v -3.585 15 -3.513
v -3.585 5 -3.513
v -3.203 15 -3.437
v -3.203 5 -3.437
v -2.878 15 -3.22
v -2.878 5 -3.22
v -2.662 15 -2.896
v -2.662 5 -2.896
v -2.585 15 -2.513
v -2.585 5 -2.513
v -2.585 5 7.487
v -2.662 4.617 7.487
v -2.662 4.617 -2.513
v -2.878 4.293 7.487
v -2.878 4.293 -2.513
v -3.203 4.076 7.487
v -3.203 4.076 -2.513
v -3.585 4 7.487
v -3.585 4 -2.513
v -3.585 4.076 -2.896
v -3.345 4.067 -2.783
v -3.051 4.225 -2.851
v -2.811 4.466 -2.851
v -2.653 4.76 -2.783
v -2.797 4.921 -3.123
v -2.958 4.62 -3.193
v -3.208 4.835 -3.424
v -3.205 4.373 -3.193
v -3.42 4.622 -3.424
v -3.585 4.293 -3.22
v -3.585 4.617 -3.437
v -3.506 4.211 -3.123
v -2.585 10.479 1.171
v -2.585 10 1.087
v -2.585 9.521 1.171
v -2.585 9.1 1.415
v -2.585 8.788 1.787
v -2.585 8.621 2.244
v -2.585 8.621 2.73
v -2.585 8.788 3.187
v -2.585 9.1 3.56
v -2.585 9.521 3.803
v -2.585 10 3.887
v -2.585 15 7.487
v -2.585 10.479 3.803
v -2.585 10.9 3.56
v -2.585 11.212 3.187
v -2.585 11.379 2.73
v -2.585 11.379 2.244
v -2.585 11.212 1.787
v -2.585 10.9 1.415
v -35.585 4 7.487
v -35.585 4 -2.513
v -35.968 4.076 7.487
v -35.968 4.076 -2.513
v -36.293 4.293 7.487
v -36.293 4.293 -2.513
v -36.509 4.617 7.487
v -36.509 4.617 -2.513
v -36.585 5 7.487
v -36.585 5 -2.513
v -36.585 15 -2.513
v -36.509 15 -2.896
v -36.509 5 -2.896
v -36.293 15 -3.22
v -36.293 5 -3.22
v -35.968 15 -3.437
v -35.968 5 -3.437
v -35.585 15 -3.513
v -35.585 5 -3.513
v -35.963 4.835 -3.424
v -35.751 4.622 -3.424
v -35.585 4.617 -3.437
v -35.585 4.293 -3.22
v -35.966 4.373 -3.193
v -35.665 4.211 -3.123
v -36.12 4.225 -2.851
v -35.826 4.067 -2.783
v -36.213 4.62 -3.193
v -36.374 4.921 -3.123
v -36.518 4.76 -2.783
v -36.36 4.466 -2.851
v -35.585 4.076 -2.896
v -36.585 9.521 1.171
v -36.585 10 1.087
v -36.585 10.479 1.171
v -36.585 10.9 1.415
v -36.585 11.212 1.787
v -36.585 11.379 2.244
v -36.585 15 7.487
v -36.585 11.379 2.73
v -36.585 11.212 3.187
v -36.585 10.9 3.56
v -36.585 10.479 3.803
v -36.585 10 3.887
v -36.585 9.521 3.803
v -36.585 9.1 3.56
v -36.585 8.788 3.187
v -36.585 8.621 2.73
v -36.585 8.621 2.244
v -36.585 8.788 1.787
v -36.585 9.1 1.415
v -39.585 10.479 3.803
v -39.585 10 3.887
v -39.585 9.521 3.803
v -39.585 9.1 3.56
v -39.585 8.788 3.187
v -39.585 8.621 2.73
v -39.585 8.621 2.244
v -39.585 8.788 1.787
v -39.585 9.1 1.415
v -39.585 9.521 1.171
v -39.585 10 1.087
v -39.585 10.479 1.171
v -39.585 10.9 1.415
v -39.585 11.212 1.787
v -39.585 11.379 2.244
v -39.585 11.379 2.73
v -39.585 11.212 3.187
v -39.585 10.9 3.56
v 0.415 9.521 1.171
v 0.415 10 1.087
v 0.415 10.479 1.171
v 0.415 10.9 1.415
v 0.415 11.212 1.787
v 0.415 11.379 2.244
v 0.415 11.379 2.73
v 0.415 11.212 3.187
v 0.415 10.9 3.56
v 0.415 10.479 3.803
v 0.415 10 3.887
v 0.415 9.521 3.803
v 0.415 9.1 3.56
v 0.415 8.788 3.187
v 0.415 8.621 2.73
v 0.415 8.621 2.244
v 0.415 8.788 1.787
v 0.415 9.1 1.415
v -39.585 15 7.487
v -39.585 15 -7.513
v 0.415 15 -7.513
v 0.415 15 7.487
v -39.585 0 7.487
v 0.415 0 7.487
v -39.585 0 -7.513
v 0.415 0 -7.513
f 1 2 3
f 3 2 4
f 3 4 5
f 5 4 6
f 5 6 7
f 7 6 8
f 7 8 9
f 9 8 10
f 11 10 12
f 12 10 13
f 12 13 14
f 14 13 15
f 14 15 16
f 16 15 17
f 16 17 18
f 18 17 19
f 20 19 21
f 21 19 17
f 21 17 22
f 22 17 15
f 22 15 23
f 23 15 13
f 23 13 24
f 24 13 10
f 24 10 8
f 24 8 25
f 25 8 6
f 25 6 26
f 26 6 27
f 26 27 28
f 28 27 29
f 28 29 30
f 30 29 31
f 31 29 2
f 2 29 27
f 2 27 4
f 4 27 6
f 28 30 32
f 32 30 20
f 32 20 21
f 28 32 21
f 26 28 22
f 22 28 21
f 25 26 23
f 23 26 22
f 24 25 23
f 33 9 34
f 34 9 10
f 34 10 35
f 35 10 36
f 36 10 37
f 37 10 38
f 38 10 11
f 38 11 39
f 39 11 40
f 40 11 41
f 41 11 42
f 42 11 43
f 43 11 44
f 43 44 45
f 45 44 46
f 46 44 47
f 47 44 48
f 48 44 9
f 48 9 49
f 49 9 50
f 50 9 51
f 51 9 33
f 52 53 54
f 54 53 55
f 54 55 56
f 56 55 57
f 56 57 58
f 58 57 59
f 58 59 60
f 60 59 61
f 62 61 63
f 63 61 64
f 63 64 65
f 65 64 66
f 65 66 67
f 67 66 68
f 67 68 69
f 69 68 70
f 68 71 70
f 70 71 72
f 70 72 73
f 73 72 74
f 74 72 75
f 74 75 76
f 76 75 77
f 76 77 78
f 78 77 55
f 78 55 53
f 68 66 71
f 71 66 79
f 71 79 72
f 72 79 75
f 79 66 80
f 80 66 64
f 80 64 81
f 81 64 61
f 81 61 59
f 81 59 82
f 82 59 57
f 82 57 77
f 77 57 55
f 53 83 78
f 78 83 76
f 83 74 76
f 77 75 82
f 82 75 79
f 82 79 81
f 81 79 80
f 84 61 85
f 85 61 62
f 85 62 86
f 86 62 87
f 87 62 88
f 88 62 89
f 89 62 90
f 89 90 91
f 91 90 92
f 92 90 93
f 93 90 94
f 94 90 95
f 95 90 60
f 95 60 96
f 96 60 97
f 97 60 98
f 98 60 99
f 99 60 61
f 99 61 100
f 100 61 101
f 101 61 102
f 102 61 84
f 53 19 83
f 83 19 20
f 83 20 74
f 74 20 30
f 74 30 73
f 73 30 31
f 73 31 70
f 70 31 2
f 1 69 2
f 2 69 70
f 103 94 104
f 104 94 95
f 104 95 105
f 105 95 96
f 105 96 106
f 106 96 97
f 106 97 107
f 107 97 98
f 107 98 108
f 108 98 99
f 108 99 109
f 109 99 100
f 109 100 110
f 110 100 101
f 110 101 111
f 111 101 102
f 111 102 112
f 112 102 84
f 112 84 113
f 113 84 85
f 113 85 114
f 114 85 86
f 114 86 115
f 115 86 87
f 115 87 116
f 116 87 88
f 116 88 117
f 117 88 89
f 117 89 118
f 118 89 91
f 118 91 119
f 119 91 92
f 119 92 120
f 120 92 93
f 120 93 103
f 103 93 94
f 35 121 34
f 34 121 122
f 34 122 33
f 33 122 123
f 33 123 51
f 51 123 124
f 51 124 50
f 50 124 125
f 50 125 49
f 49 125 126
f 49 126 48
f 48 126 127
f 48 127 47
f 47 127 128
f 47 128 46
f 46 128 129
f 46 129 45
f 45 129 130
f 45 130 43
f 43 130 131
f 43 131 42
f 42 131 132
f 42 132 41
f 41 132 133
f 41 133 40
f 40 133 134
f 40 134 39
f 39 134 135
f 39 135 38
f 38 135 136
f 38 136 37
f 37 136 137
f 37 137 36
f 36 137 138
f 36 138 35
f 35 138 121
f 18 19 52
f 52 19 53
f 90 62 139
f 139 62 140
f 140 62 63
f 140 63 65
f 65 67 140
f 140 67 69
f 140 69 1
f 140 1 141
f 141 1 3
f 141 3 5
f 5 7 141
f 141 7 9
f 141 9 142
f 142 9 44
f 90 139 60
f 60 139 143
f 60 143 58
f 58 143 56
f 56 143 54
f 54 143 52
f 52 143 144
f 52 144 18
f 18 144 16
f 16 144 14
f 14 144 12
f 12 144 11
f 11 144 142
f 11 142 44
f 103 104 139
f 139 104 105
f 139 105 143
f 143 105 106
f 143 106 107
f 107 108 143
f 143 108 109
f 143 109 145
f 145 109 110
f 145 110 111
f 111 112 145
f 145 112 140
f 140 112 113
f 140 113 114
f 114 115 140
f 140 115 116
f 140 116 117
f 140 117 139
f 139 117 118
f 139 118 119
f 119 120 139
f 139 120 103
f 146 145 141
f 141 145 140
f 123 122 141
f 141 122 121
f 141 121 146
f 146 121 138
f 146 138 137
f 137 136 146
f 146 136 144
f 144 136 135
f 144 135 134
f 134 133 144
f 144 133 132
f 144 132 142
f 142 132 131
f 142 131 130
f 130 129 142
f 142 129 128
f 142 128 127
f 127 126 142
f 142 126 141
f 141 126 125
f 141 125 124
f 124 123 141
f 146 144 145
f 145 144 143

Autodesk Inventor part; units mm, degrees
ref_plane "YZ Plane" through (0, 0, 0) normal (1, 0, 0) x (0, 1, 0)
ref_plane "XZ Plane" through (0, 0, 0) normal (0, 1, 0) x (-1, 0, 0)
ref_plane "XY Plane" through (0, 0, 0) normal (0, 0, 1) x (1, 0, 0)
sketch "Sketch1" plane through (0, 0, 0) normal (0, 1, 0) x (-1, 0, 0)
  line L0 (39.5855, 7.487) -> (-0.4145, 7.487)
  line L1 (-0.4145, 7.487) -> (-0.4145, -7.513)
  line L2 (-0.4145, -7.513) -> (39.5855, -7.513)
  line L3 (39.5855, -7.513) -> (39.5855, 7.487)
  point P0 (0, 0)
  dimension "d0" = 40
  dimension "d1" = 15
extrude "Extrusion1" add sketch "Sketch1" along normal blind 15
sketch "Sketch2" plane through (0, 15, 0) normal (0, 1, 0) x (1, 0, 0)
  line L0 (-39.5855, -7.487) -> (0.4145, -7.487) projected
  line L1 (-36.5855, -7.487) -> (-2.5855, -7.487)
  line L2 (-2.5855, -7.487) -> (-2.5855, 3.513)
  line L3 (-2.5855, 3.513) -> (-36.5855, 3.513)
  line L4 (-36.5855, 3.513) -> (-36.5855, -7.487)
  line L5 (0.4145, 7.513) -> (-39.5855, 7.513) projected
  line L6 (-39.5855, 7.513) -> (-39.5855, -7.487) projected
  line L7 (0.4145, -7.487) -> (0.4145, 7.513) projected
  point P0 (0, 0)
  dimension "d4" = 4
  dimension "d5" = 3
  dimension "d6" = 3
extrude "Extrusion2" cut sketch "Sketch2" against normal blind 11 contours L4 L3 L2 L0
sketch "Sketch3" plane through (-39.5855, 0, -7.513) normal (-1, 0, 0) x (0, 0, 1)
  circle A0 centre (10, 10) radius 1.4
  line L0 (15, 4) -> (4, 4) projected
  line L1 (4, 15) -> (4, 4) projected
  point P0 (7.513, 0)
  dimension "d9" = 2.8
  dimension "d10" = 6
  dimension "d11" = 6
extrude "Extrusion3" cut sketch "Sketch3" against normal through all
fillet "Fillet1" radius 1 1 edges at (-19.5855, 4, -3.513)
fillet "Fillet2" radius 1 3 edges at (-36.5855, 10, -3.513) (-36.5855, 4.2929, -3.2201) (-36.5855, 4, 2.487)
fillet "Fillet3" radius 1 3 edges at (-2.5855, 4, 2.487) (-2.5855, 4.2929, -3.2201) (-2.5855, 10, -3.513)
properties part number "leg_8"
